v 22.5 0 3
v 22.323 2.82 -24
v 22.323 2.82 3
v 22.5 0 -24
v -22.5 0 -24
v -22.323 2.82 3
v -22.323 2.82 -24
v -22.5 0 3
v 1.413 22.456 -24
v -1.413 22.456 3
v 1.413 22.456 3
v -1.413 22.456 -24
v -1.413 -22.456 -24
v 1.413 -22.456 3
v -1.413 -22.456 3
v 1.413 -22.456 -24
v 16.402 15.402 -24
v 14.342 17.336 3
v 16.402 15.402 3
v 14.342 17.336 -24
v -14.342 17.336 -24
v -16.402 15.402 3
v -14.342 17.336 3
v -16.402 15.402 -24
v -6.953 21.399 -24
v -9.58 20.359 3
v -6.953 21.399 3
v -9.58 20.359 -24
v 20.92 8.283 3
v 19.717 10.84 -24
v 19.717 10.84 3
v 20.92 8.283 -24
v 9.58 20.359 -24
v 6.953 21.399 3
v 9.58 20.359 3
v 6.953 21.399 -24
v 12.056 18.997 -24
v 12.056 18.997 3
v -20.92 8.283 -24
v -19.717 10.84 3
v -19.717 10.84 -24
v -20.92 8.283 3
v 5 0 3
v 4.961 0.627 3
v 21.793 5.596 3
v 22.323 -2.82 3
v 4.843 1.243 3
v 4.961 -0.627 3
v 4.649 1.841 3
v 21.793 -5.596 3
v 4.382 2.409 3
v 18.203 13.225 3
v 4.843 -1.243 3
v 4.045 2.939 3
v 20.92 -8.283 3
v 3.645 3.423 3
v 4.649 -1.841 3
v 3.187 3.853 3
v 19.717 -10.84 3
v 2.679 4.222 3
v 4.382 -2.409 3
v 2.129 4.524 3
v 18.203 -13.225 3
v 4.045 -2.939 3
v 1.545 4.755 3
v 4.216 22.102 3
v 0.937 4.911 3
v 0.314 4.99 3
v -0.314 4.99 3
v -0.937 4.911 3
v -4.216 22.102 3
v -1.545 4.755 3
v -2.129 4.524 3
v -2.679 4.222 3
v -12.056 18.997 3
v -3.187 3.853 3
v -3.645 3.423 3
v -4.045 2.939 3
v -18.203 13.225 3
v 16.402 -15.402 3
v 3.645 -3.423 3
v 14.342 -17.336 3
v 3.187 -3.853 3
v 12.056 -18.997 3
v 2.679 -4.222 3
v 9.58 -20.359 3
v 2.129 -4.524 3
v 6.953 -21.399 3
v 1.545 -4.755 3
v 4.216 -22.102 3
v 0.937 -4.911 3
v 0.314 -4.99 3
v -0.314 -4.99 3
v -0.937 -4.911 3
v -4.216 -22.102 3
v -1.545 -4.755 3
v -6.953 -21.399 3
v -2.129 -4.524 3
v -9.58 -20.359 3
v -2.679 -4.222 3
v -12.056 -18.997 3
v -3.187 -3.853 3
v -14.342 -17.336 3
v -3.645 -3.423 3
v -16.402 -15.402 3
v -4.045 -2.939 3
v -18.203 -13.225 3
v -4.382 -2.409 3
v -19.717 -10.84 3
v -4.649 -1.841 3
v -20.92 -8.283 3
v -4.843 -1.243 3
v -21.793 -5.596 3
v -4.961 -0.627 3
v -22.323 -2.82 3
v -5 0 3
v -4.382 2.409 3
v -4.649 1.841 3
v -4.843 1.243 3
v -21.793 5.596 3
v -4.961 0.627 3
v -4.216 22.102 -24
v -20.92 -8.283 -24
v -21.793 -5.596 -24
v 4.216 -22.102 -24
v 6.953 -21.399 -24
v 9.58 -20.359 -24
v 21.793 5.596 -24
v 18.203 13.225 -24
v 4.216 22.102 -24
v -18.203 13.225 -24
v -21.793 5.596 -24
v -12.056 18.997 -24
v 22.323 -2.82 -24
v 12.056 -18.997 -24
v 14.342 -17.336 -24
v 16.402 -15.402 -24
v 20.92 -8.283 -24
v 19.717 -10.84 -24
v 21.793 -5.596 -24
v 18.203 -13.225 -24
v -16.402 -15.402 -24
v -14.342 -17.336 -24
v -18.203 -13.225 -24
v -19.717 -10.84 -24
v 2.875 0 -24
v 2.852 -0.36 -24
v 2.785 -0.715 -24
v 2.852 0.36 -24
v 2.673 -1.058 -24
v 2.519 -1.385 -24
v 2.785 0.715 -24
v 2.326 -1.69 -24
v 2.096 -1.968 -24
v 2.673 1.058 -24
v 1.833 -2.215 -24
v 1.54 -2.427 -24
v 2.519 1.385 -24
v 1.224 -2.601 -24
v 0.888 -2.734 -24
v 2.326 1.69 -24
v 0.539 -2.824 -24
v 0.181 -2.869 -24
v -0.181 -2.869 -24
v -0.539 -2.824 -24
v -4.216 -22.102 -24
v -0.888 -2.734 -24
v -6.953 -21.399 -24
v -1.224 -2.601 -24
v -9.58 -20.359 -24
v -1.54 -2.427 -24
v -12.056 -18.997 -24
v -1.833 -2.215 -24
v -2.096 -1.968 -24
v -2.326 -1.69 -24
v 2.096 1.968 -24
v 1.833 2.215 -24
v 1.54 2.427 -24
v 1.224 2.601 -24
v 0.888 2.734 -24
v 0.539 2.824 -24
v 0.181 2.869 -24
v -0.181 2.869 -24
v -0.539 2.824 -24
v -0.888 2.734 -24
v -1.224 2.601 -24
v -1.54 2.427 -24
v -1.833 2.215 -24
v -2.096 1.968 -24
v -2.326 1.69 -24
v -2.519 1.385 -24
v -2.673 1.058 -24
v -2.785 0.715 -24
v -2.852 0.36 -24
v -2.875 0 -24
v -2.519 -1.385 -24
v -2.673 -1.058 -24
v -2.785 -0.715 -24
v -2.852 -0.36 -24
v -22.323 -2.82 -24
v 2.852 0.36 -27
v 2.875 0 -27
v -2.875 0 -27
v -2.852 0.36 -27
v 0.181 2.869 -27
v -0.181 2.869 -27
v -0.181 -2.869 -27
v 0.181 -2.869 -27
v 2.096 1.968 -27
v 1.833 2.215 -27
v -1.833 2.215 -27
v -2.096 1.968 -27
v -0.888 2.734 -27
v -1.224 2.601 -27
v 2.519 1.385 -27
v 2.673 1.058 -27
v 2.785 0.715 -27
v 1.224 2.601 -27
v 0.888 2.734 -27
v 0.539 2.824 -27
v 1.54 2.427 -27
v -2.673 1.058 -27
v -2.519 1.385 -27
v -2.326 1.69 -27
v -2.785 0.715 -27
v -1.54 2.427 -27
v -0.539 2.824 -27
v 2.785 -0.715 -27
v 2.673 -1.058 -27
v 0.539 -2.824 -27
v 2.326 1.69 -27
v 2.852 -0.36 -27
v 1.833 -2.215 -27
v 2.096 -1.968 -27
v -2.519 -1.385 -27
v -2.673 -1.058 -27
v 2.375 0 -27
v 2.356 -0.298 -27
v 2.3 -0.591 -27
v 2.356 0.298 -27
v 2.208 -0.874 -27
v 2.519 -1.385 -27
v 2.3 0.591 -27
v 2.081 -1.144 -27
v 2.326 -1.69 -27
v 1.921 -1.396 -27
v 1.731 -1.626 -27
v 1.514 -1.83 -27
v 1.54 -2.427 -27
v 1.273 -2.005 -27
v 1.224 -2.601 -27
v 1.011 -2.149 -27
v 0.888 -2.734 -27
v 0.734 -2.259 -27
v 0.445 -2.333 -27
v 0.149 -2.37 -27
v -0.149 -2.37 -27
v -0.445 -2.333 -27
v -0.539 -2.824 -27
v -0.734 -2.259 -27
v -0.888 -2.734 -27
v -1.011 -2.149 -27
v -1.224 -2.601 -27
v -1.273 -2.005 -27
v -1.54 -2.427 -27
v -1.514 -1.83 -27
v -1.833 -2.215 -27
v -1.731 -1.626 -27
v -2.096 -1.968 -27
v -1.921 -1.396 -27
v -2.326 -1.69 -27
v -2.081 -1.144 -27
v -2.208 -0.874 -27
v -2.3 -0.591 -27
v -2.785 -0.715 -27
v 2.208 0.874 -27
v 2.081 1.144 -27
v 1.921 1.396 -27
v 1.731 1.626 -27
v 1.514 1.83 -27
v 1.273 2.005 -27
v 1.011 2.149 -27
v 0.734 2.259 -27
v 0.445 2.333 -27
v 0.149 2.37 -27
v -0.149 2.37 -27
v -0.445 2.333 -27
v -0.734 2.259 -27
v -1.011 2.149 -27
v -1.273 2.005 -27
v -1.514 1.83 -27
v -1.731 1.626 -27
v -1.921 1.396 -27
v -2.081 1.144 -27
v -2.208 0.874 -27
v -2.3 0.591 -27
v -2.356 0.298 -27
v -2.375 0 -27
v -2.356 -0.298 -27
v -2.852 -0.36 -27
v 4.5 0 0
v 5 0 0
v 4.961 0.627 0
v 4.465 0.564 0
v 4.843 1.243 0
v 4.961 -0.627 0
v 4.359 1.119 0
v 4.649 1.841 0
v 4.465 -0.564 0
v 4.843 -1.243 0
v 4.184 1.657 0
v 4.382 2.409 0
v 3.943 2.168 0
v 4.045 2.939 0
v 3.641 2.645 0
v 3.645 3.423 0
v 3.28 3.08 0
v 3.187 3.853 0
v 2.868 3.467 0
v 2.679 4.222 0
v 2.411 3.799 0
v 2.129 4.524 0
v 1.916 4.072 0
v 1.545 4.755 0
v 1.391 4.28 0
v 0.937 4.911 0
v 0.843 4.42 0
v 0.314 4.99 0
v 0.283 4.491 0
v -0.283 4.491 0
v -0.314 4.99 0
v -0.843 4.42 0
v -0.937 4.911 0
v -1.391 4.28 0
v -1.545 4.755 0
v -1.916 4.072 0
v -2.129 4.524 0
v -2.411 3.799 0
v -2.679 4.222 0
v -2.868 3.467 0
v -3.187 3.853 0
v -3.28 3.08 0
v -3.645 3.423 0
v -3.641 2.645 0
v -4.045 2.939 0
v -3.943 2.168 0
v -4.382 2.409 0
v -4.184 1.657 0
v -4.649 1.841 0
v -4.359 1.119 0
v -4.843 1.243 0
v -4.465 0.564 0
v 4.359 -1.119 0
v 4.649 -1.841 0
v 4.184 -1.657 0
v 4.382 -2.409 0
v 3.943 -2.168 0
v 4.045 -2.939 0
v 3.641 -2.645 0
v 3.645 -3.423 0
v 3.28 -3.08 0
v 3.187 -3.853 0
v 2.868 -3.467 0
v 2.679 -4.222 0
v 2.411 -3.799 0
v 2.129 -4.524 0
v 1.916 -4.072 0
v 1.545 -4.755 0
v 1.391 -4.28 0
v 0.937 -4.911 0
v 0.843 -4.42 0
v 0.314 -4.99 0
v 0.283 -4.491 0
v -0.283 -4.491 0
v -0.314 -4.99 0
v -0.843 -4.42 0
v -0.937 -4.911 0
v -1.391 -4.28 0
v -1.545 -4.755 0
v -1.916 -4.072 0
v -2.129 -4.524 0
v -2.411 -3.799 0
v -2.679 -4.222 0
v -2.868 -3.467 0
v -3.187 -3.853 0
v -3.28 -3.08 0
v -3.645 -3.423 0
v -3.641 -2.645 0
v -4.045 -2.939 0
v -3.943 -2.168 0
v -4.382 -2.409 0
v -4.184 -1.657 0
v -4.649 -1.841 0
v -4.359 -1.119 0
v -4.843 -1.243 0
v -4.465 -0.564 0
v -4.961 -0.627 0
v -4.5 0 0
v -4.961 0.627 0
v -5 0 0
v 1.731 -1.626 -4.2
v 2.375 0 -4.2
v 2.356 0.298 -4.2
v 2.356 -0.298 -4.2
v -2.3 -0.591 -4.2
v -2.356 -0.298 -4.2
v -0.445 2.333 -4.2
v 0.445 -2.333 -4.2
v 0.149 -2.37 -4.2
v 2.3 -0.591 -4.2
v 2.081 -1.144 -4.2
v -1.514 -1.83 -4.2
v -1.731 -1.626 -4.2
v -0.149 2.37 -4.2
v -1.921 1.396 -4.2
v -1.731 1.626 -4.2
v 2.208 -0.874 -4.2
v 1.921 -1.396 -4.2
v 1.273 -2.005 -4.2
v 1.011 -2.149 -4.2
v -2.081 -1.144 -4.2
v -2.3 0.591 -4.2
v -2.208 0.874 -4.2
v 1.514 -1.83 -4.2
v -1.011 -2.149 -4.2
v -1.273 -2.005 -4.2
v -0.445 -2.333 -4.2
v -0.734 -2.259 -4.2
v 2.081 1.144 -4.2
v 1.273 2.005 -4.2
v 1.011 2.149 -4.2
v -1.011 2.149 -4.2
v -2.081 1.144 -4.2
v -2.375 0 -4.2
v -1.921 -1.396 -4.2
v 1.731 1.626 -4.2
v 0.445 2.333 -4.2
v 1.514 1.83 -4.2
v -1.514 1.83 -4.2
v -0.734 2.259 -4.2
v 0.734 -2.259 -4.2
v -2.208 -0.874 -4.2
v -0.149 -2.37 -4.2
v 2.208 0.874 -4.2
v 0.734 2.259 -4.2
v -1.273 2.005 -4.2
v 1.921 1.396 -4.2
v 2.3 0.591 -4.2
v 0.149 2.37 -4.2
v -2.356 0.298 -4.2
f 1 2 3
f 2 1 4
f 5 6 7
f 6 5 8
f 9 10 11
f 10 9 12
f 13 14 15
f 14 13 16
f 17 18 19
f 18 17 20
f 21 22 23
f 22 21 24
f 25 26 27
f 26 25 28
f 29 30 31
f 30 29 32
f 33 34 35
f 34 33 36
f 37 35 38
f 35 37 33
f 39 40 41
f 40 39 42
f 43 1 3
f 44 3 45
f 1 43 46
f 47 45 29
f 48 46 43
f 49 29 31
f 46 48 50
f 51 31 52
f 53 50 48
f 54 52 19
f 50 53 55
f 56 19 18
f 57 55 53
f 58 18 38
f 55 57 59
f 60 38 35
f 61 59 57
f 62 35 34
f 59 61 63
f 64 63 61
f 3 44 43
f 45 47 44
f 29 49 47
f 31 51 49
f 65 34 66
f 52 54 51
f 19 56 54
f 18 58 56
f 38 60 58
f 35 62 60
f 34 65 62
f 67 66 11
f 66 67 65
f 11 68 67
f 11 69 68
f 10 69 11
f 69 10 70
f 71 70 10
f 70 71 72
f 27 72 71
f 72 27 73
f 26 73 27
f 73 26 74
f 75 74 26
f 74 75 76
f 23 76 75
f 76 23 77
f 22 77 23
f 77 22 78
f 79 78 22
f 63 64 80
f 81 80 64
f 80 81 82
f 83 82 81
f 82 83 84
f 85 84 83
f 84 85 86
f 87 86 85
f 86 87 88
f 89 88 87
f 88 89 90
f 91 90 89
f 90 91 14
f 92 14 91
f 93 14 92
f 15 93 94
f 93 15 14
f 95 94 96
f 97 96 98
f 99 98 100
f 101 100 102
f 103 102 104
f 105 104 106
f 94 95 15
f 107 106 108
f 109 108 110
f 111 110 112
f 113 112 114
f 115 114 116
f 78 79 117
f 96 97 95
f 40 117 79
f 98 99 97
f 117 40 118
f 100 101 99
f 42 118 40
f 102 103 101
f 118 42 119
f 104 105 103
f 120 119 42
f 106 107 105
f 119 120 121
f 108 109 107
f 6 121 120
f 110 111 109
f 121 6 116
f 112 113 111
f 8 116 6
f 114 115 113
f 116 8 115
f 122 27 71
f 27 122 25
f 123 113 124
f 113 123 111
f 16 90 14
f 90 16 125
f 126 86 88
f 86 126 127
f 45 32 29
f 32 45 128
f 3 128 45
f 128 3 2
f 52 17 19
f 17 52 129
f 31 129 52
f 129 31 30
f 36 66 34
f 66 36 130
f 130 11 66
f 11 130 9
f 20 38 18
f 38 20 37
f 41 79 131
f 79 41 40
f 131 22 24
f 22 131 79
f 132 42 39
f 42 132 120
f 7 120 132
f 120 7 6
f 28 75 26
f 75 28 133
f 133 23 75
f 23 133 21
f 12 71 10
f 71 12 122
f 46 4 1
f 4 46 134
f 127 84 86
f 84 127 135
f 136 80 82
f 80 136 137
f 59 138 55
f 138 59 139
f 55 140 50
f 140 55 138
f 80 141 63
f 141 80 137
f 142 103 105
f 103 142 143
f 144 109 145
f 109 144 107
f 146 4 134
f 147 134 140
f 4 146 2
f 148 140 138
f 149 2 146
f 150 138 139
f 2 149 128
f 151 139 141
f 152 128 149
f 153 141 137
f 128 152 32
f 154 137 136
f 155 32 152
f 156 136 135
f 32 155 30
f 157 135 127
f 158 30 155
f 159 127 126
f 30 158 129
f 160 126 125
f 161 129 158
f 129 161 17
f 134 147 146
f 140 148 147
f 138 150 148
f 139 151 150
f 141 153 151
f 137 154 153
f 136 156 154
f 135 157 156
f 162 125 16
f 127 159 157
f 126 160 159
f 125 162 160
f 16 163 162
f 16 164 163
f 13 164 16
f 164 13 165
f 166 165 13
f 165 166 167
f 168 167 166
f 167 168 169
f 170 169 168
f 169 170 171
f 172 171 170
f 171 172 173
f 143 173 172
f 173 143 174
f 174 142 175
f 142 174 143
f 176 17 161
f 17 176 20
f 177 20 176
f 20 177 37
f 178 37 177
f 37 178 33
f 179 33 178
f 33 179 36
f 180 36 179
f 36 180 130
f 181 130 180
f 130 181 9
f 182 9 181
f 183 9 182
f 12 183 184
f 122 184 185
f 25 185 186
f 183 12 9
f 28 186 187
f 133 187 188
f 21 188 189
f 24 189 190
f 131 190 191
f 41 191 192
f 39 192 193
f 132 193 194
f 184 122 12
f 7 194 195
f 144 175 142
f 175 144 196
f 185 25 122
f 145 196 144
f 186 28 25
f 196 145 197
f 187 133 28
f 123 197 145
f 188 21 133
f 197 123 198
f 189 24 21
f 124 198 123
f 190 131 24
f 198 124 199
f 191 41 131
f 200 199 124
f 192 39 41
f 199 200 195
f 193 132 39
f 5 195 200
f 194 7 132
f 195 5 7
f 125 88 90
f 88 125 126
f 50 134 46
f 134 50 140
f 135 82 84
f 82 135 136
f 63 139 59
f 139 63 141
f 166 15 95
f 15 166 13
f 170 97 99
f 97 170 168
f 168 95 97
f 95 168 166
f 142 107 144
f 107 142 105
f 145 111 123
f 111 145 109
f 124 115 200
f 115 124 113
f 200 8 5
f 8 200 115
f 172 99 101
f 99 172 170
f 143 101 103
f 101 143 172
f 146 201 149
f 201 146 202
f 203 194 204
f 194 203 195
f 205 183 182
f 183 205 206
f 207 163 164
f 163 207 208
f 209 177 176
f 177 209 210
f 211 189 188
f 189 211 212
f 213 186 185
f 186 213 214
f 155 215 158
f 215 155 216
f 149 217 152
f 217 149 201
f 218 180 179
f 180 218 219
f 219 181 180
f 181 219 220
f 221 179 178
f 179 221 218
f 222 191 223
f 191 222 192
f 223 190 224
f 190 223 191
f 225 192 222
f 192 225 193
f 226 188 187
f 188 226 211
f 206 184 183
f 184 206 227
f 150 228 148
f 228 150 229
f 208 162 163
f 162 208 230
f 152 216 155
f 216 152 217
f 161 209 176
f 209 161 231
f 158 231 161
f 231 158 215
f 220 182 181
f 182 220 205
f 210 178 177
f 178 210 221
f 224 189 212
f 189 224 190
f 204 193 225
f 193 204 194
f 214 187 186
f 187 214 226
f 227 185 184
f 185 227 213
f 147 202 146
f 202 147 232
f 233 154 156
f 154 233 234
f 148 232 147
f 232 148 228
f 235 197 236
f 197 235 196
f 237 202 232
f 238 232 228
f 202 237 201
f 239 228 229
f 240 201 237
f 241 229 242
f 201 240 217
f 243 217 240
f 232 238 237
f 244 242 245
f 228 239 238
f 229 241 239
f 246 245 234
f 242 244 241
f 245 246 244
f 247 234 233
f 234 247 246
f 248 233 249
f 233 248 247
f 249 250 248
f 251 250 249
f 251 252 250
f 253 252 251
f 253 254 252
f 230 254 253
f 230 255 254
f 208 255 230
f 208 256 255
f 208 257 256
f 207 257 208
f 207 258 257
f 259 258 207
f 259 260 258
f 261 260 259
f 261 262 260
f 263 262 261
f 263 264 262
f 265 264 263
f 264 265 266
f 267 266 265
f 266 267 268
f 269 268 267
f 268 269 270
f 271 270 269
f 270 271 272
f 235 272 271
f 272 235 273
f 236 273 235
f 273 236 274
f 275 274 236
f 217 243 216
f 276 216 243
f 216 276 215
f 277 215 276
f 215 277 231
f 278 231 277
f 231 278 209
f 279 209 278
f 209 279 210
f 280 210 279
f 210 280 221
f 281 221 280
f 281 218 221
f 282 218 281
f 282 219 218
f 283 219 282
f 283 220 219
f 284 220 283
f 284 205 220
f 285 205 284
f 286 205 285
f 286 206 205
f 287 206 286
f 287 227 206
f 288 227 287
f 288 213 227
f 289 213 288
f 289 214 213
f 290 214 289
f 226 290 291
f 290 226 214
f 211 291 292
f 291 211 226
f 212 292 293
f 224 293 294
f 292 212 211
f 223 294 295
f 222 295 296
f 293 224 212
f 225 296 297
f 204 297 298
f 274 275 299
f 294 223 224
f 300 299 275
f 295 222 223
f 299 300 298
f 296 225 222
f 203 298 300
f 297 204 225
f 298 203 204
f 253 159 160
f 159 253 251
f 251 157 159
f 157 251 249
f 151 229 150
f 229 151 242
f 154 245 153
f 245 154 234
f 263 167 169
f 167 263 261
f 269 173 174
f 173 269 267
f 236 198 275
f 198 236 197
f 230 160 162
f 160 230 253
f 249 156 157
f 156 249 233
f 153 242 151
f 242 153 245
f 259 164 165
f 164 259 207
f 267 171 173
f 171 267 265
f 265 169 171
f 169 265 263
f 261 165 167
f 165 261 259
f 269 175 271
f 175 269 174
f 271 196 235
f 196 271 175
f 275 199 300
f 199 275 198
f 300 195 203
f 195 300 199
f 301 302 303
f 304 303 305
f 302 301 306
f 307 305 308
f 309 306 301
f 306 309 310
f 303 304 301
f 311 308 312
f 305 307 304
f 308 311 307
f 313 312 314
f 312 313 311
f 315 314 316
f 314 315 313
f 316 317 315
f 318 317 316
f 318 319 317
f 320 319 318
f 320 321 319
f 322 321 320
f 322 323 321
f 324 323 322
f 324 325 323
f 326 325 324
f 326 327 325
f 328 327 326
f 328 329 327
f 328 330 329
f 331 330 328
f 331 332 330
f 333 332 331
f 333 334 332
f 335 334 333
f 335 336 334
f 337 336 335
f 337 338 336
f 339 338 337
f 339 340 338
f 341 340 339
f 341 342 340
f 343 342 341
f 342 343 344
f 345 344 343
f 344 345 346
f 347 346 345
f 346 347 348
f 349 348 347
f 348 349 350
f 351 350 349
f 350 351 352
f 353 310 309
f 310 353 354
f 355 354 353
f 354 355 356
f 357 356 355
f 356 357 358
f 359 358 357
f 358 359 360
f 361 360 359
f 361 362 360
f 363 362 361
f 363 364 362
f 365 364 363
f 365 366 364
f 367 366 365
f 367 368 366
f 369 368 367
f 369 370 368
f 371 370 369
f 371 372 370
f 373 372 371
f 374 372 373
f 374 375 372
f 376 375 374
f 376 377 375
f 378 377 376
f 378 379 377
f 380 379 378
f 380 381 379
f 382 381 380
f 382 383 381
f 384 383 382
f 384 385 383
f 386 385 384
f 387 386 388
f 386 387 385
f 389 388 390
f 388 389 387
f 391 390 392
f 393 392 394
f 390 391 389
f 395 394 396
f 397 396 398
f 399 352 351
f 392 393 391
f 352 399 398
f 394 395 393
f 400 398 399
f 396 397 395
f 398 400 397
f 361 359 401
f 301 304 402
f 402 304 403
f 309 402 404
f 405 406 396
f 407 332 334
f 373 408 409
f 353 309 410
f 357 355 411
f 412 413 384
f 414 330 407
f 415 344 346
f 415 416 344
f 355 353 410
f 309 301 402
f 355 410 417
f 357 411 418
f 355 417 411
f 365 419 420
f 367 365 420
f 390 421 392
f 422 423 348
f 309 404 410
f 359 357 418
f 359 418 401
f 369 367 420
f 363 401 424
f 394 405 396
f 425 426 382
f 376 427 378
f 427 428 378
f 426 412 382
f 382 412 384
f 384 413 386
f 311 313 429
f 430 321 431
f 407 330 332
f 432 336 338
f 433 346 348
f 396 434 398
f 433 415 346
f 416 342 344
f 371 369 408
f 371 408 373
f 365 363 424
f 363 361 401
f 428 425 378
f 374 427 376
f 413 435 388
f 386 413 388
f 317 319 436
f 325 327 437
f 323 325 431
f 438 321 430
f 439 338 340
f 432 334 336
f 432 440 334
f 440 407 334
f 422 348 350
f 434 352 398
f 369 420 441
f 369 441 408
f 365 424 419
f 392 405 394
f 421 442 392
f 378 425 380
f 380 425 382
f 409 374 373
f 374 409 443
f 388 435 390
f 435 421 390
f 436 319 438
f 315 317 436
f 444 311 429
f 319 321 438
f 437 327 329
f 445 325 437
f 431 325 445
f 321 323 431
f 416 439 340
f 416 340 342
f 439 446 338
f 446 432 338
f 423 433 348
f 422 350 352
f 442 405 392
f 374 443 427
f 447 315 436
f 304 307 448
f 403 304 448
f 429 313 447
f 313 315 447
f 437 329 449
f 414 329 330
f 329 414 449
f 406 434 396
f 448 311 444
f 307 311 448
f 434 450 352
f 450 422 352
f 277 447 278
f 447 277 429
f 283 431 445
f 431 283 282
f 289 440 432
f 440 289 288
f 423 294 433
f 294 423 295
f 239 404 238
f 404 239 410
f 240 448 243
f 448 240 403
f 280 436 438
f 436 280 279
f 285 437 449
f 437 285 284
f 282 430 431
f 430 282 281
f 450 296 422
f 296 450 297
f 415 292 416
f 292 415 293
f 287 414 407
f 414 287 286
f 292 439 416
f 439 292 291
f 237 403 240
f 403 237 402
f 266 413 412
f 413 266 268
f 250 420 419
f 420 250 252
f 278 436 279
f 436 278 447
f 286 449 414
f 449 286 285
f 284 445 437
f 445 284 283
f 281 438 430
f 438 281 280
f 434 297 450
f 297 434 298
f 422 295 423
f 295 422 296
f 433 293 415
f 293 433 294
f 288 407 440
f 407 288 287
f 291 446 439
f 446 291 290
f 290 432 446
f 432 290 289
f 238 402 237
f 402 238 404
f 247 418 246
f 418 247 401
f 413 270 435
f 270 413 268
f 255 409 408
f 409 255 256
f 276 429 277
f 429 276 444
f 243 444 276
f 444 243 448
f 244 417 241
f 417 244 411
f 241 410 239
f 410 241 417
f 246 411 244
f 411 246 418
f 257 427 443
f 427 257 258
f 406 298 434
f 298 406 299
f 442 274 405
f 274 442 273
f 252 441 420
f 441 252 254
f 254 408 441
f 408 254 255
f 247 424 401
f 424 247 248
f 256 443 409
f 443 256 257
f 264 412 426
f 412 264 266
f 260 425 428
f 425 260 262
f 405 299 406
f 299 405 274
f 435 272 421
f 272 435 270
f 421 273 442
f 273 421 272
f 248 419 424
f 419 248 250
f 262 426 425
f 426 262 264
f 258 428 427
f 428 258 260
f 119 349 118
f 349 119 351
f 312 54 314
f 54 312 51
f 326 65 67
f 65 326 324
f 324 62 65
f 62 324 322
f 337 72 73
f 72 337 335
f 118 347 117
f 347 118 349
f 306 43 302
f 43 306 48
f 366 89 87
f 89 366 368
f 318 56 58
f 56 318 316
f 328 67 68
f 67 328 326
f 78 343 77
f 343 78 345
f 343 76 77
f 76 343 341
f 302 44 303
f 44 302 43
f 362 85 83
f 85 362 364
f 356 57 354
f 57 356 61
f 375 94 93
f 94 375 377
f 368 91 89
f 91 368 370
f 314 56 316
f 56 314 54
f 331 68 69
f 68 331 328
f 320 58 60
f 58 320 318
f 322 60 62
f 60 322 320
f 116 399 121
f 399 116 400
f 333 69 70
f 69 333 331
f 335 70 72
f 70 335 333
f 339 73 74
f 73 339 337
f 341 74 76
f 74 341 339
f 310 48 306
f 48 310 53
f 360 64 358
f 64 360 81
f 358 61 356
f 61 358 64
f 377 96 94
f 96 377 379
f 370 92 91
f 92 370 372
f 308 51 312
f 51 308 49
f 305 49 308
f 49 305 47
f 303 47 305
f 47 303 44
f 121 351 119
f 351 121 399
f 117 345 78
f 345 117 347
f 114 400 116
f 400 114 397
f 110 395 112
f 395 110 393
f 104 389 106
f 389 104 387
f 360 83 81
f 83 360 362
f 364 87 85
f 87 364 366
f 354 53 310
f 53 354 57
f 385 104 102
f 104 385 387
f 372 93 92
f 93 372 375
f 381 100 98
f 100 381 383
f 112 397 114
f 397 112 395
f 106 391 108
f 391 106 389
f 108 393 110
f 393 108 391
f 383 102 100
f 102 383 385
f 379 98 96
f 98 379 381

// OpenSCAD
$fn = 50;


difference() {
	union() {
		translate(v = [0, 0, -24.0000000000]) {
			cylinder(h = 27, r = 22.5000000000);
		}
		#translate(v = [0, 0, -27.0000000000]) {
			cylinder(h = 27, r = 2.8750000000);
		}
	}
	union() {
		translate(v = [0, 0, 0]) {
			rotate(a = [0, 0, 0]) {
				difference() {
					union() {
						translate(v = [0, 0, -27.0000000000]) {
							cylinder(h = 27, r = 2.2500000000);
						}
						translate(v = [0, 0, -4.2000000000]) {
							cylinder(h = 4.2000000000, r1 = 2.3750000000, r2 = 4.5000000000);
						}
						translate(v = [0, 0, -27.0000000000]) {
							cylinder(h = 27, r = 2.3750000000);
						}
						translate(v = [0, 0, -27.0000000000]) {
							cylinder(h = 27, r = 2.2500000000);
						}
					}
					union();
				}
			}
		}
		#cylinder(h = 3, r = 5.0000000000);
	}
}
